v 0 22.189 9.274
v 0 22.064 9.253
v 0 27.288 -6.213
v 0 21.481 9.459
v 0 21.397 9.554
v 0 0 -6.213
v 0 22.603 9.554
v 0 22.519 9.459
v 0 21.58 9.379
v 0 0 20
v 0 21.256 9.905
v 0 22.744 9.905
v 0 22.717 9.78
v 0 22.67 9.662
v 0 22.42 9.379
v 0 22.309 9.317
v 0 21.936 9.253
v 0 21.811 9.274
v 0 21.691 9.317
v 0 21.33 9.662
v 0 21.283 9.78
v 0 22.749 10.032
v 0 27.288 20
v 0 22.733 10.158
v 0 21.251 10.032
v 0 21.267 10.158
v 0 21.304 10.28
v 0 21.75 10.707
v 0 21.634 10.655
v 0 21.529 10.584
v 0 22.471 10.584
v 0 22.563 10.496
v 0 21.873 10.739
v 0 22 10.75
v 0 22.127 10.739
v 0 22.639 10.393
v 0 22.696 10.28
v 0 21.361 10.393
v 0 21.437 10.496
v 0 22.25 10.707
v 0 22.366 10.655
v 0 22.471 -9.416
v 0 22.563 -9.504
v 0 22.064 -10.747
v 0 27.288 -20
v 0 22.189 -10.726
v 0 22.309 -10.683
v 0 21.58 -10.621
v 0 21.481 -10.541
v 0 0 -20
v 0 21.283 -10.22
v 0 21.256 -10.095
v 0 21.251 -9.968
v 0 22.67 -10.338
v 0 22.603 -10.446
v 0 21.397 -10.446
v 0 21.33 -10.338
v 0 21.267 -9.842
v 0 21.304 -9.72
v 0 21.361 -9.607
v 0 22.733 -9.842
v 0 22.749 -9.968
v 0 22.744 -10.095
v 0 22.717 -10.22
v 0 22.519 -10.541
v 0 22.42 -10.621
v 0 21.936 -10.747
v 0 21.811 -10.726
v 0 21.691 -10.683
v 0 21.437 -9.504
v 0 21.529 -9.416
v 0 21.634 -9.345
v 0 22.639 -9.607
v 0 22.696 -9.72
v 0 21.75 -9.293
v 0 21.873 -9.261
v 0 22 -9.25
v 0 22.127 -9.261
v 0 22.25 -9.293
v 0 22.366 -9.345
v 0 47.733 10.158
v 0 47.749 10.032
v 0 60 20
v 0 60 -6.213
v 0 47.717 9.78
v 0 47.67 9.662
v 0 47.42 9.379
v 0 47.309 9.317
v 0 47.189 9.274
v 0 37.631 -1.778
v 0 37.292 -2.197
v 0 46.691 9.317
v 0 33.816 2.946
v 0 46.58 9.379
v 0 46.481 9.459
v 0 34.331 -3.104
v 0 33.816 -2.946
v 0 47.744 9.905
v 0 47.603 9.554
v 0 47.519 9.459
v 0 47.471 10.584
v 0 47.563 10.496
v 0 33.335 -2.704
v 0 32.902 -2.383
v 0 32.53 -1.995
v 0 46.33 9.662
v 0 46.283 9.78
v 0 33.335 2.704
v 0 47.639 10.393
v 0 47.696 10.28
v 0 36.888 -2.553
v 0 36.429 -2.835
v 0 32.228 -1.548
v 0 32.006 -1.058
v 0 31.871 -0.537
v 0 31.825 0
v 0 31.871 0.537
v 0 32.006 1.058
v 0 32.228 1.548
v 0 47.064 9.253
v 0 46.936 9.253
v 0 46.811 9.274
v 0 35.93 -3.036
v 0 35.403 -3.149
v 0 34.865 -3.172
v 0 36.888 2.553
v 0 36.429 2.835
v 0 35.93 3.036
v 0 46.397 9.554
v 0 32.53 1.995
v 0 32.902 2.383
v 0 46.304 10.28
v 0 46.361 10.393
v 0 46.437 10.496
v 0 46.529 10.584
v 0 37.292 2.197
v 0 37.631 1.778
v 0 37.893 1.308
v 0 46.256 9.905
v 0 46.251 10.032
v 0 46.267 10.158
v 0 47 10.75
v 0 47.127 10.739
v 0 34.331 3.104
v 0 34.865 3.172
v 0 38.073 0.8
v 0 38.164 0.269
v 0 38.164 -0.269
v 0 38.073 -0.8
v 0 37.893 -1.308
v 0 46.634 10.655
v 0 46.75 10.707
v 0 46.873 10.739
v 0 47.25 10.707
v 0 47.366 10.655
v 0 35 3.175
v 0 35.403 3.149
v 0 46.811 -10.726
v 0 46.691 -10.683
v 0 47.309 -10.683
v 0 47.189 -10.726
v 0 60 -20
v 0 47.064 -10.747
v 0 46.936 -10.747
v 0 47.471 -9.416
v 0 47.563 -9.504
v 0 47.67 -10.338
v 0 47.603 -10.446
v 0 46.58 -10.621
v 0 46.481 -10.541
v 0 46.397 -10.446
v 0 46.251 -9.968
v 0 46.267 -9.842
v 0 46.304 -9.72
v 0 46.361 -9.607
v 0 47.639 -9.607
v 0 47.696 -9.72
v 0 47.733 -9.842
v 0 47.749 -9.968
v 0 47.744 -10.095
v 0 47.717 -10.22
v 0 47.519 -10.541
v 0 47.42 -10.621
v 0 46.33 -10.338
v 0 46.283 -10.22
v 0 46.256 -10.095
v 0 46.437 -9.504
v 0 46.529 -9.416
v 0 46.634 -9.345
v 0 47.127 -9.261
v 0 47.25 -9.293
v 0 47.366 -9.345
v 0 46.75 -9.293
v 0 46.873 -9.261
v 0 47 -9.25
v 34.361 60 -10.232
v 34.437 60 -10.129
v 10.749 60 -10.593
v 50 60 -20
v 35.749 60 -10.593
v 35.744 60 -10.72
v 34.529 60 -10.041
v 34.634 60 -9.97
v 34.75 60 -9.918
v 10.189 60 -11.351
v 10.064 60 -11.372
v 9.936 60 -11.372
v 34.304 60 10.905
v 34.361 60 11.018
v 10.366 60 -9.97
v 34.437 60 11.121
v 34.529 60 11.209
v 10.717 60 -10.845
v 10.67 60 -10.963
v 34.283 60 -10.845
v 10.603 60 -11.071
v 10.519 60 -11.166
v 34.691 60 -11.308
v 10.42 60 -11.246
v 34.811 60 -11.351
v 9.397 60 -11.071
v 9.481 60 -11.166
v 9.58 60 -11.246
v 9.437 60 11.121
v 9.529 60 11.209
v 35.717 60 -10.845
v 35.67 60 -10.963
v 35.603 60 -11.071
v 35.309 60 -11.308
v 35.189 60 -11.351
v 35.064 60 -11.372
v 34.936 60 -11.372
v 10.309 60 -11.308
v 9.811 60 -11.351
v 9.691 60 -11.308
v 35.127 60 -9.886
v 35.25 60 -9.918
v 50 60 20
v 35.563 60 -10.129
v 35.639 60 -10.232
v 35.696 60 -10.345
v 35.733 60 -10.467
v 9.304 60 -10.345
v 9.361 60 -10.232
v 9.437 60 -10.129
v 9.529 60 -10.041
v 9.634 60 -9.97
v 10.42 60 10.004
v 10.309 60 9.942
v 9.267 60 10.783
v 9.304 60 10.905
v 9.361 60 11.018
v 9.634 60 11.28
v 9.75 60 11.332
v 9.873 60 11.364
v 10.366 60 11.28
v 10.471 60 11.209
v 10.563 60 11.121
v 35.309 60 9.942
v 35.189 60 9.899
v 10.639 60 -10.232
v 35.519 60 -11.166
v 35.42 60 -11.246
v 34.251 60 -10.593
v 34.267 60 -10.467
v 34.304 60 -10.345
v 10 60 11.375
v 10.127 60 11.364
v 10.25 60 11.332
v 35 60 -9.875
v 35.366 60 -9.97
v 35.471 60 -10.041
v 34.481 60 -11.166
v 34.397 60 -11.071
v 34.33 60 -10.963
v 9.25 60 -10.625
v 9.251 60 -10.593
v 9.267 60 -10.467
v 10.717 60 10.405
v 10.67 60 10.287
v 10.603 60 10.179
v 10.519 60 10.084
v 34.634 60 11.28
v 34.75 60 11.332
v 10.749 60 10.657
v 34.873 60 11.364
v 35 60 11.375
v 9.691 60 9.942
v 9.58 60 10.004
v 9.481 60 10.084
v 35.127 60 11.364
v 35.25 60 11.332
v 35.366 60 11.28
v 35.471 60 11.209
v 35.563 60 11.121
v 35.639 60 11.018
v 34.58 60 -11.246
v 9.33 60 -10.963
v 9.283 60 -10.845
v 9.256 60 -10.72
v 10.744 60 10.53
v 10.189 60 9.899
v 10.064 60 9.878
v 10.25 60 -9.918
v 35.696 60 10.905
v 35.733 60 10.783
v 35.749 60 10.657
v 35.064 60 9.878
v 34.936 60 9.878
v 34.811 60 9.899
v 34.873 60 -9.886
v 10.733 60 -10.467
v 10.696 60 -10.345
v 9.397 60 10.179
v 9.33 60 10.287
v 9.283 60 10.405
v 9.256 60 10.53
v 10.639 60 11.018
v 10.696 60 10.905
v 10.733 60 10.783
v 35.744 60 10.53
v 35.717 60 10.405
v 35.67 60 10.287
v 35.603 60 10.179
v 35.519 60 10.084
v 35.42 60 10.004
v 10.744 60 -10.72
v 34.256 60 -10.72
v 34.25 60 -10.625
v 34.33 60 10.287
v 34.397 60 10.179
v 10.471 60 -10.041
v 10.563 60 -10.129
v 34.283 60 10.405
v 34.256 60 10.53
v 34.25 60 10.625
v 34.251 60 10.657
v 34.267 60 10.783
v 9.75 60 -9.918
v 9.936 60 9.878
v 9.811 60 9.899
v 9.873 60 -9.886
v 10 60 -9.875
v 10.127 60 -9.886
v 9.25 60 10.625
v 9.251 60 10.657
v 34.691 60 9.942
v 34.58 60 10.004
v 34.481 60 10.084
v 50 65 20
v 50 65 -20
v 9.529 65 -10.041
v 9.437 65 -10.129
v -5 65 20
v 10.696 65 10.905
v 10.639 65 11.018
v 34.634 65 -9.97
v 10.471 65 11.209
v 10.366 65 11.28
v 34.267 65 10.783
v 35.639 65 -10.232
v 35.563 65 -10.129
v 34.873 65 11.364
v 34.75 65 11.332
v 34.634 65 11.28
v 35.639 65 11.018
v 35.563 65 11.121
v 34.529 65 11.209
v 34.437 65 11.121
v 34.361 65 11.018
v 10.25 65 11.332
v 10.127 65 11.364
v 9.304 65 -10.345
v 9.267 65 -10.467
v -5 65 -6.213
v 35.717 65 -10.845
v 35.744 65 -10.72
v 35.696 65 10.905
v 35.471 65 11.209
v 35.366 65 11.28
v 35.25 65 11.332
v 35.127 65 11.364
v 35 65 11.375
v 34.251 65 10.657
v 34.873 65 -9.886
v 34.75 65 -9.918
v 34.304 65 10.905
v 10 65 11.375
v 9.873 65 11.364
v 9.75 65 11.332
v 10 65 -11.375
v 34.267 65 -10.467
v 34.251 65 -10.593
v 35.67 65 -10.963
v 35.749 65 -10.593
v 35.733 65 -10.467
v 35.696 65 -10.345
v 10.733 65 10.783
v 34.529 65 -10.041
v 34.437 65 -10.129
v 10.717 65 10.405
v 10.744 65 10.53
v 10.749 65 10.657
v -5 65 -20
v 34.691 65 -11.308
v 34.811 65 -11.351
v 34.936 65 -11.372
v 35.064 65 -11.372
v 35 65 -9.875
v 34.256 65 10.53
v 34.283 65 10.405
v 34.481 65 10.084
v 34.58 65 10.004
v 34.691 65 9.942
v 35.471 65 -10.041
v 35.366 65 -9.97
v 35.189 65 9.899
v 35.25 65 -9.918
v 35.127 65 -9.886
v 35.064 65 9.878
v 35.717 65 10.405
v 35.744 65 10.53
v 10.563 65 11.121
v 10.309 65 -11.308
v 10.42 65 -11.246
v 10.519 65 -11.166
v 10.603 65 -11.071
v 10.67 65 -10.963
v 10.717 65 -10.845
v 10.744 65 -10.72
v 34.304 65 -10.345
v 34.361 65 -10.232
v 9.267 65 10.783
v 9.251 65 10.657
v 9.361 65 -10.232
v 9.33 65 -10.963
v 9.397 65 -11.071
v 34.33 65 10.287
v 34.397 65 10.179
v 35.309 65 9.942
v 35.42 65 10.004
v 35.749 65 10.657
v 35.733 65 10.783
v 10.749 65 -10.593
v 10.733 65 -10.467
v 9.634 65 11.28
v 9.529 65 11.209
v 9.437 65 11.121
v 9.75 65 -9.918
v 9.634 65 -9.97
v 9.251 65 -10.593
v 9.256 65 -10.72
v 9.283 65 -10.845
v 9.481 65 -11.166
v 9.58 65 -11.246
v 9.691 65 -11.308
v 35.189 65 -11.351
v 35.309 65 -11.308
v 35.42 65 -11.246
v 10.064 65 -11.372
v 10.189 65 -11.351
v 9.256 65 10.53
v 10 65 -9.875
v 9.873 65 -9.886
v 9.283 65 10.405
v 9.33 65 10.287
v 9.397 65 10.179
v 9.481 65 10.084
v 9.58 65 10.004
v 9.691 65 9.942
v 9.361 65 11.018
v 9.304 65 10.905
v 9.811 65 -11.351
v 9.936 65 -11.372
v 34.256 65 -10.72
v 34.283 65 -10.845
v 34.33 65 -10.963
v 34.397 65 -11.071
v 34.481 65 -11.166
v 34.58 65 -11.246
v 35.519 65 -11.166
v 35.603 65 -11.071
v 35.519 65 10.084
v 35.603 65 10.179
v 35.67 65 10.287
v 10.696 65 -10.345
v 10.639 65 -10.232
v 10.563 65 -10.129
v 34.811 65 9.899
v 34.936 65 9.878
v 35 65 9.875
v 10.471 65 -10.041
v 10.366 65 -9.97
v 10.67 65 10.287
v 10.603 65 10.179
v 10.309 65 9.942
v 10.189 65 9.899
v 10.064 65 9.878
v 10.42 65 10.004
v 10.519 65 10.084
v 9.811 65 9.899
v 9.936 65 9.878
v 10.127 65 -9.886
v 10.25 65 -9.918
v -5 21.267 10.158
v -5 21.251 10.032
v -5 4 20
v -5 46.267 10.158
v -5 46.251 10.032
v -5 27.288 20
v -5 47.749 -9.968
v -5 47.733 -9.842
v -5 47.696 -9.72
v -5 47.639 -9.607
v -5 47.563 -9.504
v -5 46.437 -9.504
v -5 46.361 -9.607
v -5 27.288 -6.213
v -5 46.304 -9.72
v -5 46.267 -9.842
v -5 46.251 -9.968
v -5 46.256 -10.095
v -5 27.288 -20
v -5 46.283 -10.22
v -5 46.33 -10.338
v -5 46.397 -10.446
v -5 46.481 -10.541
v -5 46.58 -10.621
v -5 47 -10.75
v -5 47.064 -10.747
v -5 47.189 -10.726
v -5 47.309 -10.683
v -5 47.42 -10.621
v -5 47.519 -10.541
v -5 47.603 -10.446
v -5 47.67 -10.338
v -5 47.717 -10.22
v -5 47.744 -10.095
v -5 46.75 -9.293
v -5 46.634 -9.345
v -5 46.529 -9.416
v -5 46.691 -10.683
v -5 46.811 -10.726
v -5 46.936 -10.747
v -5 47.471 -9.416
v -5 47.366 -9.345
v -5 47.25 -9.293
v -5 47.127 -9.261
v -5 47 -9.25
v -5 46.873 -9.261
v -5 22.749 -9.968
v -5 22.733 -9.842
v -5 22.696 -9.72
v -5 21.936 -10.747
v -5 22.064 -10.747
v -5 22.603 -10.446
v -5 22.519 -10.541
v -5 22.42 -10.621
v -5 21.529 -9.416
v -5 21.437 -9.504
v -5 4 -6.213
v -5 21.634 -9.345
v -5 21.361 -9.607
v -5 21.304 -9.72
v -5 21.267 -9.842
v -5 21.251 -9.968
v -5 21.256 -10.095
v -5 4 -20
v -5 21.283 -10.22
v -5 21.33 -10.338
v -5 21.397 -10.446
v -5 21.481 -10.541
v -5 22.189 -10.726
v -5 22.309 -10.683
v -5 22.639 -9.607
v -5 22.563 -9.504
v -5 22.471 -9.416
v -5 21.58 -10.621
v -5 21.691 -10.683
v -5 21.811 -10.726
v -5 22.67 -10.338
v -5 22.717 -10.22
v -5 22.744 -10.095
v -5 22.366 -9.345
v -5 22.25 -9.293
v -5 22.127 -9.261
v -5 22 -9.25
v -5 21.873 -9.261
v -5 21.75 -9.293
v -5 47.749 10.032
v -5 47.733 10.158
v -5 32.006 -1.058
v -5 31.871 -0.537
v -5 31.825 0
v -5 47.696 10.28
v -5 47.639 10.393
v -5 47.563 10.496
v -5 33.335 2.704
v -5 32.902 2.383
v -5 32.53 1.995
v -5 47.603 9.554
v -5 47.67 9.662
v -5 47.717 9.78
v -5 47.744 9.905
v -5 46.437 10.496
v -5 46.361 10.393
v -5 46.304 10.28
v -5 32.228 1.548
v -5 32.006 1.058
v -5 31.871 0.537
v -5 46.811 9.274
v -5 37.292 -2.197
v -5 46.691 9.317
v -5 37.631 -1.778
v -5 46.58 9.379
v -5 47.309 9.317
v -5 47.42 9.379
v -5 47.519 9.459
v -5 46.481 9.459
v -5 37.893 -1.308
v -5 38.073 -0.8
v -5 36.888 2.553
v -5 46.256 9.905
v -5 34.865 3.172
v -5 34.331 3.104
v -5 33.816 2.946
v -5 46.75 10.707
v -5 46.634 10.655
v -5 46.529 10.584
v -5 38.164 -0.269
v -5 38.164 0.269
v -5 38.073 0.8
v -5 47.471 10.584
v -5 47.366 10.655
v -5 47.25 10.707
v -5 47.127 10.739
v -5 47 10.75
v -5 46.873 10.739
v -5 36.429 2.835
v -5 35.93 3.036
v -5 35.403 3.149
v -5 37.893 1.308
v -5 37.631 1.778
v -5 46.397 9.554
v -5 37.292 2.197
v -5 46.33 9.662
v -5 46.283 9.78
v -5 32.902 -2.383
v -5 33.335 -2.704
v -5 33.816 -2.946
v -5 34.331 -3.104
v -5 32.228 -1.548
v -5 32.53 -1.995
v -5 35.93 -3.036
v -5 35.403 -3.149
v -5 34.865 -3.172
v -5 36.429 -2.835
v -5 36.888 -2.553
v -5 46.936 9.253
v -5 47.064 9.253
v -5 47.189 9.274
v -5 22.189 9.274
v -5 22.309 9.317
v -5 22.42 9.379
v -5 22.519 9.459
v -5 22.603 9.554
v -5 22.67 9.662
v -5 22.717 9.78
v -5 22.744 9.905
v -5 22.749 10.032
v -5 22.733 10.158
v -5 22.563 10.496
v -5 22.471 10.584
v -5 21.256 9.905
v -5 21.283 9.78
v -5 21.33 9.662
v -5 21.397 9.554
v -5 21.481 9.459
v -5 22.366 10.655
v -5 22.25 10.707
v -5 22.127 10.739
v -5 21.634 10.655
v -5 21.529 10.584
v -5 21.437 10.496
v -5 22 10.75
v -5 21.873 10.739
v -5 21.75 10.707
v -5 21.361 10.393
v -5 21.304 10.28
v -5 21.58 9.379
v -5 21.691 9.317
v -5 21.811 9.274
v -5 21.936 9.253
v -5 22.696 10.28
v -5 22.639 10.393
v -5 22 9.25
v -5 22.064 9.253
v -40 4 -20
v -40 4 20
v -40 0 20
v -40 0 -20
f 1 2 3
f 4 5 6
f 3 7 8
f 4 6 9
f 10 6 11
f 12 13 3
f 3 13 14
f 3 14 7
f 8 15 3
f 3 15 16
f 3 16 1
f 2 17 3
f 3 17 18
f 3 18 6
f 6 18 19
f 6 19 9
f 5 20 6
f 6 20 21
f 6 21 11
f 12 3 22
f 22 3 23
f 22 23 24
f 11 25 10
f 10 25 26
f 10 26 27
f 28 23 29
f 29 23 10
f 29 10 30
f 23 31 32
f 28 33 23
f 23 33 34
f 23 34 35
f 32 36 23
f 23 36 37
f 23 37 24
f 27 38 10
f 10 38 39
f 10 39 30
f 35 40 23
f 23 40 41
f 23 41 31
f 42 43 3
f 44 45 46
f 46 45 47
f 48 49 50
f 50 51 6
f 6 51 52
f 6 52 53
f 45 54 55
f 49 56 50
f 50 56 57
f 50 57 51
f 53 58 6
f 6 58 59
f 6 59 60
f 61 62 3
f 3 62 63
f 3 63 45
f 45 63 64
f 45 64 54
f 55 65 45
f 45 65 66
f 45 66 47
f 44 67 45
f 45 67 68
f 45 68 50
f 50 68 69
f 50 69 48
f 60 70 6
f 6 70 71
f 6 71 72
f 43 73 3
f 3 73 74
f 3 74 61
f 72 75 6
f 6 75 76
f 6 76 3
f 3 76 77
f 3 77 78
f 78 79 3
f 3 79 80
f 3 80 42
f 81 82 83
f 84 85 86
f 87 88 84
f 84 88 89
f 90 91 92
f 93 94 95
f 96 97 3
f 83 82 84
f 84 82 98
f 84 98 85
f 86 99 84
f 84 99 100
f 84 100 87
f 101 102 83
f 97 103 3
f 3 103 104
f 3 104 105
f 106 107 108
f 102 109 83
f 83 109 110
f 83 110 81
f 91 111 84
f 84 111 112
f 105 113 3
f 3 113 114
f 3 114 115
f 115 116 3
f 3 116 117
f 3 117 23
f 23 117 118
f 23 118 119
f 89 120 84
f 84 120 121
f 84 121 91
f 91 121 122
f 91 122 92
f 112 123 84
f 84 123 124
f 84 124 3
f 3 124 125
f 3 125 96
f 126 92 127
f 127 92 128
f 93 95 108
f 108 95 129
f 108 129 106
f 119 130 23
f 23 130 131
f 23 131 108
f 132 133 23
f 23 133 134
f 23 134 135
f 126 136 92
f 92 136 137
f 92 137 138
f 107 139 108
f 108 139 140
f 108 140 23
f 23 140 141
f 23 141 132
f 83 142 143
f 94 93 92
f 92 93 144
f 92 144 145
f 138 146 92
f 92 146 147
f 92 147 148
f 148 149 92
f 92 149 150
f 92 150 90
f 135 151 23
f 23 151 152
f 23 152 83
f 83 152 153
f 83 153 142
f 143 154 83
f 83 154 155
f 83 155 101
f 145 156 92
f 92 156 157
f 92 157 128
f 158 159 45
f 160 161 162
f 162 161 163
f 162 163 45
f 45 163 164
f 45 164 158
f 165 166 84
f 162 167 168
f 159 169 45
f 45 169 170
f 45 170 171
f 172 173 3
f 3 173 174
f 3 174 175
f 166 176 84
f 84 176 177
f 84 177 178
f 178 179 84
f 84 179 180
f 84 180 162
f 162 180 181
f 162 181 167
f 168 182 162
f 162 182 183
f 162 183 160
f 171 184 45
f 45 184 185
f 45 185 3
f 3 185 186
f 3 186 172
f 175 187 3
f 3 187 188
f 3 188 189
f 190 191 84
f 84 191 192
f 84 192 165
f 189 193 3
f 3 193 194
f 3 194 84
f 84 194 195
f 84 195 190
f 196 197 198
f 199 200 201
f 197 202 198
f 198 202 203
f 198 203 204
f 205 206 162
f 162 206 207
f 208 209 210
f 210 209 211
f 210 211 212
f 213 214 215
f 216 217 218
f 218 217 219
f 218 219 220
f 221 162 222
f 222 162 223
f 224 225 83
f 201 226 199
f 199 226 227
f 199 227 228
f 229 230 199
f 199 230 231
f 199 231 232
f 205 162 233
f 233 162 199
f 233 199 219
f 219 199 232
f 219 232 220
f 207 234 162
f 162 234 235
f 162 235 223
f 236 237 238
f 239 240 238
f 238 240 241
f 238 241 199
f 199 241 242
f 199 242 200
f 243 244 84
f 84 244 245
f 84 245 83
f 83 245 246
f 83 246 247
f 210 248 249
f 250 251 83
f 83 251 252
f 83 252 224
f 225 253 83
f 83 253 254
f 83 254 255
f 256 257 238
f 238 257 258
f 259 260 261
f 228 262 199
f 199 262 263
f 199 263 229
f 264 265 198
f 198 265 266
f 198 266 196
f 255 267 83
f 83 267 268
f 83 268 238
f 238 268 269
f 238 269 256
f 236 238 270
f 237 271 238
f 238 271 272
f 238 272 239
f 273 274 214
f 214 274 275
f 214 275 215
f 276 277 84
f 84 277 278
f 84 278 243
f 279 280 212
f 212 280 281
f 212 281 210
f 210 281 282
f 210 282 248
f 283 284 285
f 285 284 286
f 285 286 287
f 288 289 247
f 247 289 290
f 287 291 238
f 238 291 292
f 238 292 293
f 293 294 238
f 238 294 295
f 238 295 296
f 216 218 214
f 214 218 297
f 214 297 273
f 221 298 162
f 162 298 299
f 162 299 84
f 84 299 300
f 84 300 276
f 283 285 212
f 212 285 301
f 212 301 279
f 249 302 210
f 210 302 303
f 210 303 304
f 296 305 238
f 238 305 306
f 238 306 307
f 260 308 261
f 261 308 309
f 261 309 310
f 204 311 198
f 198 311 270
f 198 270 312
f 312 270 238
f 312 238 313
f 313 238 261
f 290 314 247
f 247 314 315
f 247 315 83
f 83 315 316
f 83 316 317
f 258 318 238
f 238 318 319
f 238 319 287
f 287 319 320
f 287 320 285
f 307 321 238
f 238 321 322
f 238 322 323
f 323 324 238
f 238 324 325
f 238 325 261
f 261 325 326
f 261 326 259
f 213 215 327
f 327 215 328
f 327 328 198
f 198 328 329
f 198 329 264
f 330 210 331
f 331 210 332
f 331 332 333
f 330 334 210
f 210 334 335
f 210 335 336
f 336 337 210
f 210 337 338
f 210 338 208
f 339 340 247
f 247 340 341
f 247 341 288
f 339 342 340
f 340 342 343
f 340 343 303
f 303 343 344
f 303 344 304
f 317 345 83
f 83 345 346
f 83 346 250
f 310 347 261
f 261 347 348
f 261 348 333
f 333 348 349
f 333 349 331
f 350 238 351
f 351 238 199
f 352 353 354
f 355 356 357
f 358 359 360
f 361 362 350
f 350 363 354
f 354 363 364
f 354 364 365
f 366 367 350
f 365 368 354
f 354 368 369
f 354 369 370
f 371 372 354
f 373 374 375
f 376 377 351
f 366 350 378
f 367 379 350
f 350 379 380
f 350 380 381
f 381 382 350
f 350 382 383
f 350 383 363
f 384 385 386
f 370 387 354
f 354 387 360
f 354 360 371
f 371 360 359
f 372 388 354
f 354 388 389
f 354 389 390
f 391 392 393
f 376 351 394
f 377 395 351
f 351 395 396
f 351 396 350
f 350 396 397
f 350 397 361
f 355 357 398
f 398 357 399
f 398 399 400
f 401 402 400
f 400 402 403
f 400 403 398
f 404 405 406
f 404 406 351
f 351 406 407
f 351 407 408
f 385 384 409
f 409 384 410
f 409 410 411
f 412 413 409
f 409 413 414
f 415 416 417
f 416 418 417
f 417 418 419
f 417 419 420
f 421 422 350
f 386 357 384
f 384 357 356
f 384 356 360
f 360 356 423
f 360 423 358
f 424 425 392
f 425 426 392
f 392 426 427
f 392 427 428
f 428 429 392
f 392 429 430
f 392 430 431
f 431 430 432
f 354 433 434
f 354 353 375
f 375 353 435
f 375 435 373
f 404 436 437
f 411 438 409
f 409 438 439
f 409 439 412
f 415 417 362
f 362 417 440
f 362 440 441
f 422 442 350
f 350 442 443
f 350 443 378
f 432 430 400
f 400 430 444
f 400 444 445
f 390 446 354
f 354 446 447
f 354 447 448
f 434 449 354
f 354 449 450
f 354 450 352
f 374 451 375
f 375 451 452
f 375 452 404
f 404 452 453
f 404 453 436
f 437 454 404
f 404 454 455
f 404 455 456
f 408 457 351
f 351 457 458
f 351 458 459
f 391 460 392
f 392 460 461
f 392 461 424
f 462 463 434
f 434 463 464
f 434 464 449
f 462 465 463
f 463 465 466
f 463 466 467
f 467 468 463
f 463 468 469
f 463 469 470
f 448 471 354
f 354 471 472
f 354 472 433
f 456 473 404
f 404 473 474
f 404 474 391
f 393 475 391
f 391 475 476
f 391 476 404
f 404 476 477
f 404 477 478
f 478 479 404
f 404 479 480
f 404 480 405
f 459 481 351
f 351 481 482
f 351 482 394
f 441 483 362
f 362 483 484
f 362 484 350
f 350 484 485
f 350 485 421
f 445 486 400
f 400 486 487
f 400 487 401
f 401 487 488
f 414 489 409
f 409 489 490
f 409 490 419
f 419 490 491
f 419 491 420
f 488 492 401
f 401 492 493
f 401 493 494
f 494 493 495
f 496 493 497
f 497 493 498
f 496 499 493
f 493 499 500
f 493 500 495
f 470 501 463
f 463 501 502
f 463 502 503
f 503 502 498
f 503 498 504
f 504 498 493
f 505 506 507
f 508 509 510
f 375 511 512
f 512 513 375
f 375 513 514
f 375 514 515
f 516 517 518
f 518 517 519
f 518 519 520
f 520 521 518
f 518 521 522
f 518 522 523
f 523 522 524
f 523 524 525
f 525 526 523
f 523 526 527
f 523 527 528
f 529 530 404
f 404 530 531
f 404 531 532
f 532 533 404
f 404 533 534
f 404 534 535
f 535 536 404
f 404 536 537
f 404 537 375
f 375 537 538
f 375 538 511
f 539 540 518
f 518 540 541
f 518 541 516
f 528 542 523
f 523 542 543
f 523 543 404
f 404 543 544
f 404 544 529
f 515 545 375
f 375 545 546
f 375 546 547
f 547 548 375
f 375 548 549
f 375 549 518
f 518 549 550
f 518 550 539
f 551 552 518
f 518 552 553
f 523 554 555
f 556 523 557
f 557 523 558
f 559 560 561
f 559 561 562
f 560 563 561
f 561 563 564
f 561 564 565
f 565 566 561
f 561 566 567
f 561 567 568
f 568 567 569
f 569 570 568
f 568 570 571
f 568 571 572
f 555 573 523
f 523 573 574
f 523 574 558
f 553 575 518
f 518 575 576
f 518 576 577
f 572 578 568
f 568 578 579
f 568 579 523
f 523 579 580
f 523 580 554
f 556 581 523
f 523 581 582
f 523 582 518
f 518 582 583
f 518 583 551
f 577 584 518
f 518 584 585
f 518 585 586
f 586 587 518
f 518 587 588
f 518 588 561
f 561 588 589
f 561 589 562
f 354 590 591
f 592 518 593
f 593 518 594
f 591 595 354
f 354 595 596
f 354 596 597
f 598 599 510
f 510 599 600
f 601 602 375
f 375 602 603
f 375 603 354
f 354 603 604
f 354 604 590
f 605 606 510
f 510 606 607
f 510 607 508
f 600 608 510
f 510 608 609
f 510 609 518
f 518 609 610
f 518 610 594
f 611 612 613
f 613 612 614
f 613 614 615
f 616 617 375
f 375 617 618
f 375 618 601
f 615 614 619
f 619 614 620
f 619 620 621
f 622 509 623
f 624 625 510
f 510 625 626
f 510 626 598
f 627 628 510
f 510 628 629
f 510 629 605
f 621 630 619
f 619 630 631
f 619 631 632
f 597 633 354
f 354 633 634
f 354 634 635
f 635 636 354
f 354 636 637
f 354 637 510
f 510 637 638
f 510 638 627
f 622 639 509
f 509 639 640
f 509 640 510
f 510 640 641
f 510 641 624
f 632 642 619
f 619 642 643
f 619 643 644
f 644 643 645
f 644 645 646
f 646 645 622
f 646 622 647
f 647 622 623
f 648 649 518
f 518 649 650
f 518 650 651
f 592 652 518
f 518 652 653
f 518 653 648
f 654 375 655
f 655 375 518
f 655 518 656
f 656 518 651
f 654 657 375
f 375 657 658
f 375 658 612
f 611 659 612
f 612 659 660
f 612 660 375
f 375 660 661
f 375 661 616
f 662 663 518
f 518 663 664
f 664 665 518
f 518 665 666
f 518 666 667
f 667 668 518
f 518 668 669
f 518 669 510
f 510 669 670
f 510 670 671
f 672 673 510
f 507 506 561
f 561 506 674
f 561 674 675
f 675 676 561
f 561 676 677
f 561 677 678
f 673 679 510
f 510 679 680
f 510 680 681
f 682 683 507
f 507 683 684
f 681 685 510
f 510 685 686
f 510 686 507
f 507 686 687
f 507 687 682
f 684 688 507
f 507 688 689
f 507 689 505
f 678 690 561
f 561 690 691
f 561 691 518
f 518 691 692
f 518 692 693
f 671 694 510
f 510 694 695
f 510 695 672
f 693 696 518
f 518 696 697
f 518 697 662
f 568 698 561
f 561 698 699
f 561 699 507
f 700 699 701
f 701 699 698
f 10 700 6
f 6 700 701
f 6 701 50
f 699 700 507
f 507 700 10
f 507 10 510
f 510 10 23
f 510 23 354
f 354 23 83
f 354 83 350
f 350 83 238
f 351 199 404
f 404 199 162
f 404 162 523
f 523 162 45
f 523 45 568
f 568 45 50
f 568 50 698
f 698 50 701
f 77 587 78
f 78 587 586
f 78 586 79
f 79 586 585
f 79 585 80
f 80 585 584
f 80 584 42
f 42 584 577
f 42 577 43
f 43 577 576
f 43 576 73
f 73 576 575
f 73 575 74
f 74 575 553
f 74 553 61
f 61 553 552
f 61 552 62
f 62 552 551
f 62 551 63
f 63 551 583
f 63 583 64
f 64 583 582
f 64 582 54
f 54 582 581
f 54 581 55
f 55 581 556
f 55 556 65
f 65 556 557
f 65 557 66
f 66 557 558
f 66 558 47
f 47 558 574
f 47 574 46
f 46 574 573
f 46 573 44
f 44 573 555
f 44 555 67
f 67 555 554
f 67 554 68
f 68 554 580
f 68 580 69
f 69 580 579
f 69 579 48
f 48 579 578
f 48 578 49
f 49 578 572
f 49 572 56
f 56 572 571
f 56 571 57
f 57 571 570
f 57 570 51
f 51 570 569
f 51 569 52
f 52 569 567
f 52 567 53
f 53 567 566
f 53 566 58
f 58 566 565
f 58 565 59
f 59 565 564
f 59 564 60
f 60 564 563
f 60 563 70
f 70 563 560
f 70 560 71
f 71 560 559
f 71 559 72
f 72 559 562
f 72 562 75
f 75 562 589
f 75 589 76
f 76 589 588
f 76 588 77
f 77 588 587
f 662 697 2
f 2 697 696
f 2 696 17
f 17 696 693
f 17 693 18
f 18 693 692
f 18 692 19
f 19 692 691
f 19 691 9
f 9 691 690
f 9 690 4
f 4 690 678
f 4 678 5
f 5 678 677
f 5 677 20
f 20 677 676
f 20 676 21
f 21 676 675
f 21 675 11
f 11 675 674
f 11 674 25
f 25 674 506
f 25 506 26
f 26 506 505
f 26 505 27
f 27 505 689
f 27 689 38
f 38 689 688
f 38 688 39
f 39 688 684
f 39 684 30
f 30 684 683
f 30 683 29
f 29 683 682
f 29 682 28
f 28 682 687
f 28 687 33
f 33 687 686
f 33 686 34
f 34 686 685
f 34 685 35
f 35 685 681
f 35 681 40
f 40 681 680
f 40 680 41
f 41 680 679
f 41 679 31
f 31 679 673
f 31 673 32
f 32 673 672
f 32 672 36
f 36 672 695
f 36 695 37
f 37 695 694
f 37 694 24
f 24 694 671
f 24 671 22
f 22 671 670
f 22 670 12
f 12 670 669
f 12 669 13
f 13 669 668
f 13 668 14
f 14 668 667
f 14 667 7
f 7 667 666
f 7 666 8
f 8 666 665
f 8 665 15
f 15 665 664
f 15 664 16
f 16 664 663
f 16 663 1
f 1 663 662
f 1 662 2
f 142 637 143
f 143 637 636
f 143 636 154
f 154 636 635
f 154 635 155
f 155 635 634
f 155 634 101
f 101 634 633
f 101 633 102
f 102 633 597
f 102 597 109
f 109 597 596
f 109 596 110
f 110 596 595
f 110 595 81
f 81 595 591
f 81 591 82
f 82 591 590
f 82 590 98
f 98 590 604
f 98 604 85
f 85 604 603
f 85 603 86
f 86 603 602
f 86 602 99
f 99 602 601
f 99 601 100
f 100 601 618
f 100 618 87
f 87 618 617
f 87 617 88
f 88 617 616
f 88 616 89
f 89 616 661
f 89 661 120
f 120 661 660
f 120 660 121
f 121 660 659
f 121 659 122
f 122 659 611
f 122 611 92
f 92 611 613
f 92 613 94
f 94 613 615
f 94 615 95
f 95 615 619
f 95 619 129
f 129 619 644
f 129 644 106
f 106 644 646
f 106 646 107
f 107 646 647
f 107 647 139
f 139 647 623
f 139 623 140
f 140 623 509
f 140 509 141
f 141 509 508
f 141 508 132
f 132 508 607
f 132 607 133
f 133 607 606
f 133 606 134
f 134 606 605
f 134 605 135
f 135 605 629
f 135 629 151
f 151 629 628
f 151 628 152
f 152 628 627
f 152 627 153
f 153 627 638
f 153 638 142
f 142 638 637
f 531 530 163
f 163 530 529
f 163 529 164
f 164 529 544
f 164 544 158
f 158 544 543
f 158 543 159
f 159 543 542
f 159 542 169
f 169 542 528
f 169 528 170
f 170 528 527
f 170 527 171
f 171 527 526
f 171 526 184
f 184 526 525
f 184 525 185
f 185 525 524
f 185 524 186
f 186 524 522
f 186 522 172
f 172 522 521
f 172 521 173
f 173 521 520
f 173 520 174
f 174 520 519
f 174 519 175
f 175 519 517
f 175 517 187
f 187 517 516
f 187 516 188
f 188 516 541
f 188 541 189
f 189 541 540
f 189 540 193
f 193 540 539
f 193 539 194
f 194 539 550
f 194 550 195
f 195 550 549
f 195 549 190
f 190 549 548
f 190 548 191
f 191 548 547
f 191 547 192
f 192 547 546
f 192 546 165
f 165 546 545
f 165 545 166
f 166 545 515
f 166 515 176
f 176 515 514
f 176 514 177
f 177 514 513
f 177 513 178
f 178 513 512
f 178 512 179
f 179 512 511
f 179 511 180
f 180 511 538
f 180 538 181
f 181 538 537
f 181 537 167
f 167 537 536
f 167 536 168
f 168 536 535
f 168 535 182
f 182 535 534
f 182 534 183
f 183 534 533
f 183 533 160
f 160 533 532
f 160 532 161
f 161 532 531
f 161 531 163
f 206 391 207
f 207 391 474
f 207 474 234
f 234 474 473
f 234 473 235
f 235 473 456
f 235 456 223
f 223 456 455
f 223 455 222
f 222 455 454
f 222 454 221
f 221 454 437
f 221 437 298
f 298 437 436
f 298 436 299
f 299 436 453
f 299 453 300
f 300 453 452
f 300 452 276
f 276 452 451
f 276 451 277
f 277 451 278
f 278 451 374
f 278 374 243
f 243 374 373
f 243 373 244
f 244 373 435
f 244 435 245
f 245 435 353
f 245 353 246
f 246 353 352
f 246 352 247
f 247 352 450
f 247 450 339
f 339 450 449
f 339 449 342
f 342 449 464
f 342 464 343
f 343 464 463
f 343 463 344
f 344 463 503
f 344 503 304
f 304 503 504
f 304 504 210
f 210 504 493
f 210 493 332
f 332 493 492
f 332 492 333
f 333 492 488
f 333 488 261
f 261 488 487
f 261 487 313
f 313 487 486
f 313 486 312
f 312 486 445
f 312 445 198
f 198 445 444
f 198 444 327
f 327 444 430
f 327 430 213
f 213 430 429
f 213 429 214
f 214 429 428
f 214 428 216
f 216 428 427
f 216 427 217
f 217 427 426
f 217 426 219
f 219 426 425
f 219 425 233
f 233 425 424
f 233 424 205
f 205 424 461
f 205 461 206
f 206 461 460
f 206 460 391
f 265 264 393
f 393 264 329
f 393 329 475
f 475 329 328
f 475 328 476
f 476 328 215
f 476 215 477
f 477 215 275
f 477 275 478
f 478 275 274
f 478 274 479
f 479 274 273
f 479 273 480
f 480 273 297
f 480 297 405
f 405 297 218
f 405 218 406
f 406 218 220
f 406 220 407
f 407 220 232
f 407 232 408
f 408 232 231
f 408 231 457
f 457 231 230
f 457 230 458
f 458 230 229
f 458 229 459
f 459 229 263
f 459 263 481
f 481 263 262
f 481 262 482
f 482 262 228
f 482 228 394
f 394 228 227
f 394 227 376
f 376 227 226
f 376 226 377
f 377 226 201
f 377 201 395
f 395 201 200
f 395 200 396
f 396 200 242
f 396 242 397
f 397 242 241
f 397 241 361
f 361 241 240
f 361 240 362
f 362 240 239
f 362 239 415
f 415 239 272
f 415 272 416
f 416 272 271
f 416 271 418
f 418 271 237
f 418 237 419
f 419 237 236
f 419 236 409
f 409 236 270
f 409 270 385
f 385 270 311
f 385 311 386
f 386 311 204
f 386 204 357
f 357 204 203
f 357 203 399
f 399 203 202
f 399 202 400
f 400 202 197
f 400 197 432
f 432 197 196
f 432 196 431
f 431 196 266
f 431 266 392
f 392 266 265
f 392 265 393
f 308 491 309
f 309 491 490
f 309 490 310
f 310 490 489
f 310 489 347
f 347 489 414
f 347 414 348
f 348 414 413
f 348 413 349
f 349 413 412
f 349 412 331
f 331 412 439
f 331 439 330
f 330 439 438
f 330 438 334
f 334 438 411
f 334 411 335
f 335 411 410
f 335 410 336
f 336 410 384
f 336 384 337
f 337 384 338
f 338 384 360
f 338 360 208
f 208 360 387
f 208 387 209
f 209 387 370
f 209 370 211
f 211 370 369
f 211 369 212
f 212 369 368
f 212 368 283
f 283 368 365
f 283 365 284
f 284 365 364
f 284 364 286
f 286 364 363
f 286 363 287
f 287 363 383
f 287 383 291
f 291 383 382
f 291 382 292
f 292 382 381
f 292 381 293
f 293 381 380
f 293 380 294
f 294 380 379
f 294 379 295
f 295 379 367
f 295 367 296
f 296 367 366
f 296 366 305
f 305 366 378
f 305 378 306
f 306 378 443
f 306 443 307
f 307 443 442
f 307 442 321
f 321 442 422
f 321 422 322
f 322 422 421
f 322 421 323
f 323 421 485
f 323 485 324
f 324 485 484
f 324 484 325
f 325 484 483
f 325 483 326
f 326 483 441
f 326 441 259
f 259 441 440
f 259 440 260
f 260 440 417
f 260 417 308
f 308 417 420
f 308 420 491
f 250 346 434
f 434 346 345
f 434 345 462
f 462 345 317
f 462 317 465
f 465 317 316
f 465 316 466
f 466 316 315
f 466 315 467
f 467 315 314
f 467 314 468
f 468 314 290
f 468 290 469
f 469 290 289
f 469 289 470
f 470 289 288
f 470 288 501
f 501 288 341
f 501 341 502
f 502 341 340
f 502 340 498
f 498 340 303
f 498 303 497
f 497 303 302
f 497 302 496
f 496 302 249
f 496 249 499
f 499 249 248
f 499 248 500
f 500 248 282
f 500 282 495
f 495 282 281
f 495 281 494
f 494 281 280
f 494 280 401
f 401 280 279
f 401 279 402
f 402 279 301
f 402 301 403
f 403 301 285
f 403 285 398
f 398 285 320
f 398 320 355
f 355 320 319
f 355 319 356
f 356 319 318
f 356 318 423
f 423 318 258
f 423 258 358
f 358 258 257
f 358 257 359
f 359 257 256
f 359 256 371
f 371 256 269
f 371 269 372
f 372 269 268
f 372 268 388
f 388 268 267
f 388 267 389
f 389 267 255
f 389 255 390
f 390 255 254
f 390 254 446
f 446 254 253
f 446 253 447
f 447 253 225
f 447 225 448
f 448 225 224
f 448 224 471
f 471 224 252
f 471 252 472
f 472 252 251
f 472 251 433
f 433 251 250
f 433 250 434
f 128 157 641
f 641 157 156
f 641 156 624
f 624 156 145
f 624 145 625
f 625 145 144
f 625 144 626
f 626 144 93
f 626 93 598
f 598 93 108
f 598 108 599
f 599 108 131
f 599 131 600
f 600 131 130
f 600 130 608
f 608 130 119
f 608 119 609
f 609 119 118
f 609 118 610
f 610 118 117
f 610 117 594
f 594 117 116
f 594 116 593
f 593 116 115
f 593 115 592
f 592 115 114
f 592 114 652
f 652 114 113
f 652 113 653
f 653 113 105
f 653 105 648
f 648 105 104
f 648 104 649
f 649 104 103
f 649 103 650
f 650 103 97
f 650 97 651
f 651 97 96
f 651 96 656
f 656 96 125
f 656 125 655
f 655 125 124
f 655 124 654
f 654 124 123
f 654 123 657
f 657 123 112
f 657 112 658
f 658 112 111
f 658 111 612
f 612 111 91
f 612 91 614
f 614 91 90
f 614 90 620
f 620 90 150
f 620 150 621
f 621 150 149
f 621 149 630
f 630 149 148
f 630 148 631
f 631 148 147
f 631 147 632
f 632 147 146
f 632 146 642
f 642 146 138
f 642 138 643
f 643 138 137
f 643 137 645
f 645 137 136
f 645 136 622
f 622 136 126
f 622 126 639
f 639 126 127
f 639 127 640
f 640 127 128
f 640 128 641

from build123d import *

# Parameters (mm, degrees)
BOSS_EXTRUDE1_DEPTH = 20
MOVE_FACE1_BY       = 10
MOVE_FACE2_BY       = 10
SKETCH2_R           = 0.75
CUT_EXTRUDE1_DEPTH  = 88.464278423
SKETCH3_R           = 0.75
CUT_EXTRUDE2_DEPTH  = 108.819293264
SKETCH5_R           = 3.175
CUT_EXTRUDE3_DEPTH  = 88.464278423


with BuildPart() as part:
    # Sketch1 → Boss-Extrude1 (new, symmetric)
    with BuildSketch(Plane.XY):
        Polygon((0, 0), (-40, 0), (-40, 4), (-5, 4), (-5, 55), (50, 55), (50, 50), (0, 50), align=None)
    extrude(amount=BOSS_EXTRUDE1_DEPTH, both=True)

    # Move Face1: a face moved outward by 10.0
    extrude(part.faces().sort_by_distance((22.5, 55, 0))[0], amount=MOVE_FACE1_BY, dir=(0, 1, 0))

    # Move Face2: a face moved inward by 10.0
    extrude(part.faces().sort_by_distance((25, 50, 0))[0], amount=MOVE_FACE2_BY, dir=(0, 1, 0), mode=Mode.SUBTRACT)

    # Sketch2 → Cut-Extrude1 (cut, through all)
    with BuildSketch(Plane.ZY.offset(5)):
        with Locations((-10, 22)):
            Circle(SKETCH2_R)
        with Locations((10, 22)):
            Circle(SKETCH2_R)
        with Locations((10, 47)):
            Circle(SKETCH2_R)
        with Locations((-10, 47)):
            Circle(SKETCH2_R)
    extrude(amount=-CUT_EXTRUDE1_DEPTH, mode=Mode.SUBTRACT)

    # Sketch3 → Cut-Extrude2 (cut, through all)
    with BuildSketch(Plane(origin=(0, 65, -50), x_dir=(1, 0, 0), z_dir=(0, -1, 0))):
        with Locations(Location((10, 39.375, 0), (0, 0, 180))):
            Circle(SKETCH3_R)
        with Locations(Location((35, 39.375, 0), (0, 0, 90))):
            Circle(SKETCH3_R)
        with Locations(Location((35, 60.625, 0), (0, 0, 180))):
            Circle(SKETCH3_R)
        with Locations(Location((10, 60.625, 0), (0, 0, 90))):
            Circle(SKETCH3_R)
    extrude(amount=CUT_EXTRUDE2_DEPTH, mode=Mode.SUBTRACT)

    # Sketch5 → Cut-Extrude3 (cut, through all)
    with BuildSketch(Plane.ZY.offset(5)):
        with Locations(Location((0, 35, 0), (0, 0, 270))):
            Circle(SKETCH5_R)
    extrude(amount=-CUT_EXTRUDE3_DEPTH, mode=Mode.SUBTRACT)


solid = part.part
